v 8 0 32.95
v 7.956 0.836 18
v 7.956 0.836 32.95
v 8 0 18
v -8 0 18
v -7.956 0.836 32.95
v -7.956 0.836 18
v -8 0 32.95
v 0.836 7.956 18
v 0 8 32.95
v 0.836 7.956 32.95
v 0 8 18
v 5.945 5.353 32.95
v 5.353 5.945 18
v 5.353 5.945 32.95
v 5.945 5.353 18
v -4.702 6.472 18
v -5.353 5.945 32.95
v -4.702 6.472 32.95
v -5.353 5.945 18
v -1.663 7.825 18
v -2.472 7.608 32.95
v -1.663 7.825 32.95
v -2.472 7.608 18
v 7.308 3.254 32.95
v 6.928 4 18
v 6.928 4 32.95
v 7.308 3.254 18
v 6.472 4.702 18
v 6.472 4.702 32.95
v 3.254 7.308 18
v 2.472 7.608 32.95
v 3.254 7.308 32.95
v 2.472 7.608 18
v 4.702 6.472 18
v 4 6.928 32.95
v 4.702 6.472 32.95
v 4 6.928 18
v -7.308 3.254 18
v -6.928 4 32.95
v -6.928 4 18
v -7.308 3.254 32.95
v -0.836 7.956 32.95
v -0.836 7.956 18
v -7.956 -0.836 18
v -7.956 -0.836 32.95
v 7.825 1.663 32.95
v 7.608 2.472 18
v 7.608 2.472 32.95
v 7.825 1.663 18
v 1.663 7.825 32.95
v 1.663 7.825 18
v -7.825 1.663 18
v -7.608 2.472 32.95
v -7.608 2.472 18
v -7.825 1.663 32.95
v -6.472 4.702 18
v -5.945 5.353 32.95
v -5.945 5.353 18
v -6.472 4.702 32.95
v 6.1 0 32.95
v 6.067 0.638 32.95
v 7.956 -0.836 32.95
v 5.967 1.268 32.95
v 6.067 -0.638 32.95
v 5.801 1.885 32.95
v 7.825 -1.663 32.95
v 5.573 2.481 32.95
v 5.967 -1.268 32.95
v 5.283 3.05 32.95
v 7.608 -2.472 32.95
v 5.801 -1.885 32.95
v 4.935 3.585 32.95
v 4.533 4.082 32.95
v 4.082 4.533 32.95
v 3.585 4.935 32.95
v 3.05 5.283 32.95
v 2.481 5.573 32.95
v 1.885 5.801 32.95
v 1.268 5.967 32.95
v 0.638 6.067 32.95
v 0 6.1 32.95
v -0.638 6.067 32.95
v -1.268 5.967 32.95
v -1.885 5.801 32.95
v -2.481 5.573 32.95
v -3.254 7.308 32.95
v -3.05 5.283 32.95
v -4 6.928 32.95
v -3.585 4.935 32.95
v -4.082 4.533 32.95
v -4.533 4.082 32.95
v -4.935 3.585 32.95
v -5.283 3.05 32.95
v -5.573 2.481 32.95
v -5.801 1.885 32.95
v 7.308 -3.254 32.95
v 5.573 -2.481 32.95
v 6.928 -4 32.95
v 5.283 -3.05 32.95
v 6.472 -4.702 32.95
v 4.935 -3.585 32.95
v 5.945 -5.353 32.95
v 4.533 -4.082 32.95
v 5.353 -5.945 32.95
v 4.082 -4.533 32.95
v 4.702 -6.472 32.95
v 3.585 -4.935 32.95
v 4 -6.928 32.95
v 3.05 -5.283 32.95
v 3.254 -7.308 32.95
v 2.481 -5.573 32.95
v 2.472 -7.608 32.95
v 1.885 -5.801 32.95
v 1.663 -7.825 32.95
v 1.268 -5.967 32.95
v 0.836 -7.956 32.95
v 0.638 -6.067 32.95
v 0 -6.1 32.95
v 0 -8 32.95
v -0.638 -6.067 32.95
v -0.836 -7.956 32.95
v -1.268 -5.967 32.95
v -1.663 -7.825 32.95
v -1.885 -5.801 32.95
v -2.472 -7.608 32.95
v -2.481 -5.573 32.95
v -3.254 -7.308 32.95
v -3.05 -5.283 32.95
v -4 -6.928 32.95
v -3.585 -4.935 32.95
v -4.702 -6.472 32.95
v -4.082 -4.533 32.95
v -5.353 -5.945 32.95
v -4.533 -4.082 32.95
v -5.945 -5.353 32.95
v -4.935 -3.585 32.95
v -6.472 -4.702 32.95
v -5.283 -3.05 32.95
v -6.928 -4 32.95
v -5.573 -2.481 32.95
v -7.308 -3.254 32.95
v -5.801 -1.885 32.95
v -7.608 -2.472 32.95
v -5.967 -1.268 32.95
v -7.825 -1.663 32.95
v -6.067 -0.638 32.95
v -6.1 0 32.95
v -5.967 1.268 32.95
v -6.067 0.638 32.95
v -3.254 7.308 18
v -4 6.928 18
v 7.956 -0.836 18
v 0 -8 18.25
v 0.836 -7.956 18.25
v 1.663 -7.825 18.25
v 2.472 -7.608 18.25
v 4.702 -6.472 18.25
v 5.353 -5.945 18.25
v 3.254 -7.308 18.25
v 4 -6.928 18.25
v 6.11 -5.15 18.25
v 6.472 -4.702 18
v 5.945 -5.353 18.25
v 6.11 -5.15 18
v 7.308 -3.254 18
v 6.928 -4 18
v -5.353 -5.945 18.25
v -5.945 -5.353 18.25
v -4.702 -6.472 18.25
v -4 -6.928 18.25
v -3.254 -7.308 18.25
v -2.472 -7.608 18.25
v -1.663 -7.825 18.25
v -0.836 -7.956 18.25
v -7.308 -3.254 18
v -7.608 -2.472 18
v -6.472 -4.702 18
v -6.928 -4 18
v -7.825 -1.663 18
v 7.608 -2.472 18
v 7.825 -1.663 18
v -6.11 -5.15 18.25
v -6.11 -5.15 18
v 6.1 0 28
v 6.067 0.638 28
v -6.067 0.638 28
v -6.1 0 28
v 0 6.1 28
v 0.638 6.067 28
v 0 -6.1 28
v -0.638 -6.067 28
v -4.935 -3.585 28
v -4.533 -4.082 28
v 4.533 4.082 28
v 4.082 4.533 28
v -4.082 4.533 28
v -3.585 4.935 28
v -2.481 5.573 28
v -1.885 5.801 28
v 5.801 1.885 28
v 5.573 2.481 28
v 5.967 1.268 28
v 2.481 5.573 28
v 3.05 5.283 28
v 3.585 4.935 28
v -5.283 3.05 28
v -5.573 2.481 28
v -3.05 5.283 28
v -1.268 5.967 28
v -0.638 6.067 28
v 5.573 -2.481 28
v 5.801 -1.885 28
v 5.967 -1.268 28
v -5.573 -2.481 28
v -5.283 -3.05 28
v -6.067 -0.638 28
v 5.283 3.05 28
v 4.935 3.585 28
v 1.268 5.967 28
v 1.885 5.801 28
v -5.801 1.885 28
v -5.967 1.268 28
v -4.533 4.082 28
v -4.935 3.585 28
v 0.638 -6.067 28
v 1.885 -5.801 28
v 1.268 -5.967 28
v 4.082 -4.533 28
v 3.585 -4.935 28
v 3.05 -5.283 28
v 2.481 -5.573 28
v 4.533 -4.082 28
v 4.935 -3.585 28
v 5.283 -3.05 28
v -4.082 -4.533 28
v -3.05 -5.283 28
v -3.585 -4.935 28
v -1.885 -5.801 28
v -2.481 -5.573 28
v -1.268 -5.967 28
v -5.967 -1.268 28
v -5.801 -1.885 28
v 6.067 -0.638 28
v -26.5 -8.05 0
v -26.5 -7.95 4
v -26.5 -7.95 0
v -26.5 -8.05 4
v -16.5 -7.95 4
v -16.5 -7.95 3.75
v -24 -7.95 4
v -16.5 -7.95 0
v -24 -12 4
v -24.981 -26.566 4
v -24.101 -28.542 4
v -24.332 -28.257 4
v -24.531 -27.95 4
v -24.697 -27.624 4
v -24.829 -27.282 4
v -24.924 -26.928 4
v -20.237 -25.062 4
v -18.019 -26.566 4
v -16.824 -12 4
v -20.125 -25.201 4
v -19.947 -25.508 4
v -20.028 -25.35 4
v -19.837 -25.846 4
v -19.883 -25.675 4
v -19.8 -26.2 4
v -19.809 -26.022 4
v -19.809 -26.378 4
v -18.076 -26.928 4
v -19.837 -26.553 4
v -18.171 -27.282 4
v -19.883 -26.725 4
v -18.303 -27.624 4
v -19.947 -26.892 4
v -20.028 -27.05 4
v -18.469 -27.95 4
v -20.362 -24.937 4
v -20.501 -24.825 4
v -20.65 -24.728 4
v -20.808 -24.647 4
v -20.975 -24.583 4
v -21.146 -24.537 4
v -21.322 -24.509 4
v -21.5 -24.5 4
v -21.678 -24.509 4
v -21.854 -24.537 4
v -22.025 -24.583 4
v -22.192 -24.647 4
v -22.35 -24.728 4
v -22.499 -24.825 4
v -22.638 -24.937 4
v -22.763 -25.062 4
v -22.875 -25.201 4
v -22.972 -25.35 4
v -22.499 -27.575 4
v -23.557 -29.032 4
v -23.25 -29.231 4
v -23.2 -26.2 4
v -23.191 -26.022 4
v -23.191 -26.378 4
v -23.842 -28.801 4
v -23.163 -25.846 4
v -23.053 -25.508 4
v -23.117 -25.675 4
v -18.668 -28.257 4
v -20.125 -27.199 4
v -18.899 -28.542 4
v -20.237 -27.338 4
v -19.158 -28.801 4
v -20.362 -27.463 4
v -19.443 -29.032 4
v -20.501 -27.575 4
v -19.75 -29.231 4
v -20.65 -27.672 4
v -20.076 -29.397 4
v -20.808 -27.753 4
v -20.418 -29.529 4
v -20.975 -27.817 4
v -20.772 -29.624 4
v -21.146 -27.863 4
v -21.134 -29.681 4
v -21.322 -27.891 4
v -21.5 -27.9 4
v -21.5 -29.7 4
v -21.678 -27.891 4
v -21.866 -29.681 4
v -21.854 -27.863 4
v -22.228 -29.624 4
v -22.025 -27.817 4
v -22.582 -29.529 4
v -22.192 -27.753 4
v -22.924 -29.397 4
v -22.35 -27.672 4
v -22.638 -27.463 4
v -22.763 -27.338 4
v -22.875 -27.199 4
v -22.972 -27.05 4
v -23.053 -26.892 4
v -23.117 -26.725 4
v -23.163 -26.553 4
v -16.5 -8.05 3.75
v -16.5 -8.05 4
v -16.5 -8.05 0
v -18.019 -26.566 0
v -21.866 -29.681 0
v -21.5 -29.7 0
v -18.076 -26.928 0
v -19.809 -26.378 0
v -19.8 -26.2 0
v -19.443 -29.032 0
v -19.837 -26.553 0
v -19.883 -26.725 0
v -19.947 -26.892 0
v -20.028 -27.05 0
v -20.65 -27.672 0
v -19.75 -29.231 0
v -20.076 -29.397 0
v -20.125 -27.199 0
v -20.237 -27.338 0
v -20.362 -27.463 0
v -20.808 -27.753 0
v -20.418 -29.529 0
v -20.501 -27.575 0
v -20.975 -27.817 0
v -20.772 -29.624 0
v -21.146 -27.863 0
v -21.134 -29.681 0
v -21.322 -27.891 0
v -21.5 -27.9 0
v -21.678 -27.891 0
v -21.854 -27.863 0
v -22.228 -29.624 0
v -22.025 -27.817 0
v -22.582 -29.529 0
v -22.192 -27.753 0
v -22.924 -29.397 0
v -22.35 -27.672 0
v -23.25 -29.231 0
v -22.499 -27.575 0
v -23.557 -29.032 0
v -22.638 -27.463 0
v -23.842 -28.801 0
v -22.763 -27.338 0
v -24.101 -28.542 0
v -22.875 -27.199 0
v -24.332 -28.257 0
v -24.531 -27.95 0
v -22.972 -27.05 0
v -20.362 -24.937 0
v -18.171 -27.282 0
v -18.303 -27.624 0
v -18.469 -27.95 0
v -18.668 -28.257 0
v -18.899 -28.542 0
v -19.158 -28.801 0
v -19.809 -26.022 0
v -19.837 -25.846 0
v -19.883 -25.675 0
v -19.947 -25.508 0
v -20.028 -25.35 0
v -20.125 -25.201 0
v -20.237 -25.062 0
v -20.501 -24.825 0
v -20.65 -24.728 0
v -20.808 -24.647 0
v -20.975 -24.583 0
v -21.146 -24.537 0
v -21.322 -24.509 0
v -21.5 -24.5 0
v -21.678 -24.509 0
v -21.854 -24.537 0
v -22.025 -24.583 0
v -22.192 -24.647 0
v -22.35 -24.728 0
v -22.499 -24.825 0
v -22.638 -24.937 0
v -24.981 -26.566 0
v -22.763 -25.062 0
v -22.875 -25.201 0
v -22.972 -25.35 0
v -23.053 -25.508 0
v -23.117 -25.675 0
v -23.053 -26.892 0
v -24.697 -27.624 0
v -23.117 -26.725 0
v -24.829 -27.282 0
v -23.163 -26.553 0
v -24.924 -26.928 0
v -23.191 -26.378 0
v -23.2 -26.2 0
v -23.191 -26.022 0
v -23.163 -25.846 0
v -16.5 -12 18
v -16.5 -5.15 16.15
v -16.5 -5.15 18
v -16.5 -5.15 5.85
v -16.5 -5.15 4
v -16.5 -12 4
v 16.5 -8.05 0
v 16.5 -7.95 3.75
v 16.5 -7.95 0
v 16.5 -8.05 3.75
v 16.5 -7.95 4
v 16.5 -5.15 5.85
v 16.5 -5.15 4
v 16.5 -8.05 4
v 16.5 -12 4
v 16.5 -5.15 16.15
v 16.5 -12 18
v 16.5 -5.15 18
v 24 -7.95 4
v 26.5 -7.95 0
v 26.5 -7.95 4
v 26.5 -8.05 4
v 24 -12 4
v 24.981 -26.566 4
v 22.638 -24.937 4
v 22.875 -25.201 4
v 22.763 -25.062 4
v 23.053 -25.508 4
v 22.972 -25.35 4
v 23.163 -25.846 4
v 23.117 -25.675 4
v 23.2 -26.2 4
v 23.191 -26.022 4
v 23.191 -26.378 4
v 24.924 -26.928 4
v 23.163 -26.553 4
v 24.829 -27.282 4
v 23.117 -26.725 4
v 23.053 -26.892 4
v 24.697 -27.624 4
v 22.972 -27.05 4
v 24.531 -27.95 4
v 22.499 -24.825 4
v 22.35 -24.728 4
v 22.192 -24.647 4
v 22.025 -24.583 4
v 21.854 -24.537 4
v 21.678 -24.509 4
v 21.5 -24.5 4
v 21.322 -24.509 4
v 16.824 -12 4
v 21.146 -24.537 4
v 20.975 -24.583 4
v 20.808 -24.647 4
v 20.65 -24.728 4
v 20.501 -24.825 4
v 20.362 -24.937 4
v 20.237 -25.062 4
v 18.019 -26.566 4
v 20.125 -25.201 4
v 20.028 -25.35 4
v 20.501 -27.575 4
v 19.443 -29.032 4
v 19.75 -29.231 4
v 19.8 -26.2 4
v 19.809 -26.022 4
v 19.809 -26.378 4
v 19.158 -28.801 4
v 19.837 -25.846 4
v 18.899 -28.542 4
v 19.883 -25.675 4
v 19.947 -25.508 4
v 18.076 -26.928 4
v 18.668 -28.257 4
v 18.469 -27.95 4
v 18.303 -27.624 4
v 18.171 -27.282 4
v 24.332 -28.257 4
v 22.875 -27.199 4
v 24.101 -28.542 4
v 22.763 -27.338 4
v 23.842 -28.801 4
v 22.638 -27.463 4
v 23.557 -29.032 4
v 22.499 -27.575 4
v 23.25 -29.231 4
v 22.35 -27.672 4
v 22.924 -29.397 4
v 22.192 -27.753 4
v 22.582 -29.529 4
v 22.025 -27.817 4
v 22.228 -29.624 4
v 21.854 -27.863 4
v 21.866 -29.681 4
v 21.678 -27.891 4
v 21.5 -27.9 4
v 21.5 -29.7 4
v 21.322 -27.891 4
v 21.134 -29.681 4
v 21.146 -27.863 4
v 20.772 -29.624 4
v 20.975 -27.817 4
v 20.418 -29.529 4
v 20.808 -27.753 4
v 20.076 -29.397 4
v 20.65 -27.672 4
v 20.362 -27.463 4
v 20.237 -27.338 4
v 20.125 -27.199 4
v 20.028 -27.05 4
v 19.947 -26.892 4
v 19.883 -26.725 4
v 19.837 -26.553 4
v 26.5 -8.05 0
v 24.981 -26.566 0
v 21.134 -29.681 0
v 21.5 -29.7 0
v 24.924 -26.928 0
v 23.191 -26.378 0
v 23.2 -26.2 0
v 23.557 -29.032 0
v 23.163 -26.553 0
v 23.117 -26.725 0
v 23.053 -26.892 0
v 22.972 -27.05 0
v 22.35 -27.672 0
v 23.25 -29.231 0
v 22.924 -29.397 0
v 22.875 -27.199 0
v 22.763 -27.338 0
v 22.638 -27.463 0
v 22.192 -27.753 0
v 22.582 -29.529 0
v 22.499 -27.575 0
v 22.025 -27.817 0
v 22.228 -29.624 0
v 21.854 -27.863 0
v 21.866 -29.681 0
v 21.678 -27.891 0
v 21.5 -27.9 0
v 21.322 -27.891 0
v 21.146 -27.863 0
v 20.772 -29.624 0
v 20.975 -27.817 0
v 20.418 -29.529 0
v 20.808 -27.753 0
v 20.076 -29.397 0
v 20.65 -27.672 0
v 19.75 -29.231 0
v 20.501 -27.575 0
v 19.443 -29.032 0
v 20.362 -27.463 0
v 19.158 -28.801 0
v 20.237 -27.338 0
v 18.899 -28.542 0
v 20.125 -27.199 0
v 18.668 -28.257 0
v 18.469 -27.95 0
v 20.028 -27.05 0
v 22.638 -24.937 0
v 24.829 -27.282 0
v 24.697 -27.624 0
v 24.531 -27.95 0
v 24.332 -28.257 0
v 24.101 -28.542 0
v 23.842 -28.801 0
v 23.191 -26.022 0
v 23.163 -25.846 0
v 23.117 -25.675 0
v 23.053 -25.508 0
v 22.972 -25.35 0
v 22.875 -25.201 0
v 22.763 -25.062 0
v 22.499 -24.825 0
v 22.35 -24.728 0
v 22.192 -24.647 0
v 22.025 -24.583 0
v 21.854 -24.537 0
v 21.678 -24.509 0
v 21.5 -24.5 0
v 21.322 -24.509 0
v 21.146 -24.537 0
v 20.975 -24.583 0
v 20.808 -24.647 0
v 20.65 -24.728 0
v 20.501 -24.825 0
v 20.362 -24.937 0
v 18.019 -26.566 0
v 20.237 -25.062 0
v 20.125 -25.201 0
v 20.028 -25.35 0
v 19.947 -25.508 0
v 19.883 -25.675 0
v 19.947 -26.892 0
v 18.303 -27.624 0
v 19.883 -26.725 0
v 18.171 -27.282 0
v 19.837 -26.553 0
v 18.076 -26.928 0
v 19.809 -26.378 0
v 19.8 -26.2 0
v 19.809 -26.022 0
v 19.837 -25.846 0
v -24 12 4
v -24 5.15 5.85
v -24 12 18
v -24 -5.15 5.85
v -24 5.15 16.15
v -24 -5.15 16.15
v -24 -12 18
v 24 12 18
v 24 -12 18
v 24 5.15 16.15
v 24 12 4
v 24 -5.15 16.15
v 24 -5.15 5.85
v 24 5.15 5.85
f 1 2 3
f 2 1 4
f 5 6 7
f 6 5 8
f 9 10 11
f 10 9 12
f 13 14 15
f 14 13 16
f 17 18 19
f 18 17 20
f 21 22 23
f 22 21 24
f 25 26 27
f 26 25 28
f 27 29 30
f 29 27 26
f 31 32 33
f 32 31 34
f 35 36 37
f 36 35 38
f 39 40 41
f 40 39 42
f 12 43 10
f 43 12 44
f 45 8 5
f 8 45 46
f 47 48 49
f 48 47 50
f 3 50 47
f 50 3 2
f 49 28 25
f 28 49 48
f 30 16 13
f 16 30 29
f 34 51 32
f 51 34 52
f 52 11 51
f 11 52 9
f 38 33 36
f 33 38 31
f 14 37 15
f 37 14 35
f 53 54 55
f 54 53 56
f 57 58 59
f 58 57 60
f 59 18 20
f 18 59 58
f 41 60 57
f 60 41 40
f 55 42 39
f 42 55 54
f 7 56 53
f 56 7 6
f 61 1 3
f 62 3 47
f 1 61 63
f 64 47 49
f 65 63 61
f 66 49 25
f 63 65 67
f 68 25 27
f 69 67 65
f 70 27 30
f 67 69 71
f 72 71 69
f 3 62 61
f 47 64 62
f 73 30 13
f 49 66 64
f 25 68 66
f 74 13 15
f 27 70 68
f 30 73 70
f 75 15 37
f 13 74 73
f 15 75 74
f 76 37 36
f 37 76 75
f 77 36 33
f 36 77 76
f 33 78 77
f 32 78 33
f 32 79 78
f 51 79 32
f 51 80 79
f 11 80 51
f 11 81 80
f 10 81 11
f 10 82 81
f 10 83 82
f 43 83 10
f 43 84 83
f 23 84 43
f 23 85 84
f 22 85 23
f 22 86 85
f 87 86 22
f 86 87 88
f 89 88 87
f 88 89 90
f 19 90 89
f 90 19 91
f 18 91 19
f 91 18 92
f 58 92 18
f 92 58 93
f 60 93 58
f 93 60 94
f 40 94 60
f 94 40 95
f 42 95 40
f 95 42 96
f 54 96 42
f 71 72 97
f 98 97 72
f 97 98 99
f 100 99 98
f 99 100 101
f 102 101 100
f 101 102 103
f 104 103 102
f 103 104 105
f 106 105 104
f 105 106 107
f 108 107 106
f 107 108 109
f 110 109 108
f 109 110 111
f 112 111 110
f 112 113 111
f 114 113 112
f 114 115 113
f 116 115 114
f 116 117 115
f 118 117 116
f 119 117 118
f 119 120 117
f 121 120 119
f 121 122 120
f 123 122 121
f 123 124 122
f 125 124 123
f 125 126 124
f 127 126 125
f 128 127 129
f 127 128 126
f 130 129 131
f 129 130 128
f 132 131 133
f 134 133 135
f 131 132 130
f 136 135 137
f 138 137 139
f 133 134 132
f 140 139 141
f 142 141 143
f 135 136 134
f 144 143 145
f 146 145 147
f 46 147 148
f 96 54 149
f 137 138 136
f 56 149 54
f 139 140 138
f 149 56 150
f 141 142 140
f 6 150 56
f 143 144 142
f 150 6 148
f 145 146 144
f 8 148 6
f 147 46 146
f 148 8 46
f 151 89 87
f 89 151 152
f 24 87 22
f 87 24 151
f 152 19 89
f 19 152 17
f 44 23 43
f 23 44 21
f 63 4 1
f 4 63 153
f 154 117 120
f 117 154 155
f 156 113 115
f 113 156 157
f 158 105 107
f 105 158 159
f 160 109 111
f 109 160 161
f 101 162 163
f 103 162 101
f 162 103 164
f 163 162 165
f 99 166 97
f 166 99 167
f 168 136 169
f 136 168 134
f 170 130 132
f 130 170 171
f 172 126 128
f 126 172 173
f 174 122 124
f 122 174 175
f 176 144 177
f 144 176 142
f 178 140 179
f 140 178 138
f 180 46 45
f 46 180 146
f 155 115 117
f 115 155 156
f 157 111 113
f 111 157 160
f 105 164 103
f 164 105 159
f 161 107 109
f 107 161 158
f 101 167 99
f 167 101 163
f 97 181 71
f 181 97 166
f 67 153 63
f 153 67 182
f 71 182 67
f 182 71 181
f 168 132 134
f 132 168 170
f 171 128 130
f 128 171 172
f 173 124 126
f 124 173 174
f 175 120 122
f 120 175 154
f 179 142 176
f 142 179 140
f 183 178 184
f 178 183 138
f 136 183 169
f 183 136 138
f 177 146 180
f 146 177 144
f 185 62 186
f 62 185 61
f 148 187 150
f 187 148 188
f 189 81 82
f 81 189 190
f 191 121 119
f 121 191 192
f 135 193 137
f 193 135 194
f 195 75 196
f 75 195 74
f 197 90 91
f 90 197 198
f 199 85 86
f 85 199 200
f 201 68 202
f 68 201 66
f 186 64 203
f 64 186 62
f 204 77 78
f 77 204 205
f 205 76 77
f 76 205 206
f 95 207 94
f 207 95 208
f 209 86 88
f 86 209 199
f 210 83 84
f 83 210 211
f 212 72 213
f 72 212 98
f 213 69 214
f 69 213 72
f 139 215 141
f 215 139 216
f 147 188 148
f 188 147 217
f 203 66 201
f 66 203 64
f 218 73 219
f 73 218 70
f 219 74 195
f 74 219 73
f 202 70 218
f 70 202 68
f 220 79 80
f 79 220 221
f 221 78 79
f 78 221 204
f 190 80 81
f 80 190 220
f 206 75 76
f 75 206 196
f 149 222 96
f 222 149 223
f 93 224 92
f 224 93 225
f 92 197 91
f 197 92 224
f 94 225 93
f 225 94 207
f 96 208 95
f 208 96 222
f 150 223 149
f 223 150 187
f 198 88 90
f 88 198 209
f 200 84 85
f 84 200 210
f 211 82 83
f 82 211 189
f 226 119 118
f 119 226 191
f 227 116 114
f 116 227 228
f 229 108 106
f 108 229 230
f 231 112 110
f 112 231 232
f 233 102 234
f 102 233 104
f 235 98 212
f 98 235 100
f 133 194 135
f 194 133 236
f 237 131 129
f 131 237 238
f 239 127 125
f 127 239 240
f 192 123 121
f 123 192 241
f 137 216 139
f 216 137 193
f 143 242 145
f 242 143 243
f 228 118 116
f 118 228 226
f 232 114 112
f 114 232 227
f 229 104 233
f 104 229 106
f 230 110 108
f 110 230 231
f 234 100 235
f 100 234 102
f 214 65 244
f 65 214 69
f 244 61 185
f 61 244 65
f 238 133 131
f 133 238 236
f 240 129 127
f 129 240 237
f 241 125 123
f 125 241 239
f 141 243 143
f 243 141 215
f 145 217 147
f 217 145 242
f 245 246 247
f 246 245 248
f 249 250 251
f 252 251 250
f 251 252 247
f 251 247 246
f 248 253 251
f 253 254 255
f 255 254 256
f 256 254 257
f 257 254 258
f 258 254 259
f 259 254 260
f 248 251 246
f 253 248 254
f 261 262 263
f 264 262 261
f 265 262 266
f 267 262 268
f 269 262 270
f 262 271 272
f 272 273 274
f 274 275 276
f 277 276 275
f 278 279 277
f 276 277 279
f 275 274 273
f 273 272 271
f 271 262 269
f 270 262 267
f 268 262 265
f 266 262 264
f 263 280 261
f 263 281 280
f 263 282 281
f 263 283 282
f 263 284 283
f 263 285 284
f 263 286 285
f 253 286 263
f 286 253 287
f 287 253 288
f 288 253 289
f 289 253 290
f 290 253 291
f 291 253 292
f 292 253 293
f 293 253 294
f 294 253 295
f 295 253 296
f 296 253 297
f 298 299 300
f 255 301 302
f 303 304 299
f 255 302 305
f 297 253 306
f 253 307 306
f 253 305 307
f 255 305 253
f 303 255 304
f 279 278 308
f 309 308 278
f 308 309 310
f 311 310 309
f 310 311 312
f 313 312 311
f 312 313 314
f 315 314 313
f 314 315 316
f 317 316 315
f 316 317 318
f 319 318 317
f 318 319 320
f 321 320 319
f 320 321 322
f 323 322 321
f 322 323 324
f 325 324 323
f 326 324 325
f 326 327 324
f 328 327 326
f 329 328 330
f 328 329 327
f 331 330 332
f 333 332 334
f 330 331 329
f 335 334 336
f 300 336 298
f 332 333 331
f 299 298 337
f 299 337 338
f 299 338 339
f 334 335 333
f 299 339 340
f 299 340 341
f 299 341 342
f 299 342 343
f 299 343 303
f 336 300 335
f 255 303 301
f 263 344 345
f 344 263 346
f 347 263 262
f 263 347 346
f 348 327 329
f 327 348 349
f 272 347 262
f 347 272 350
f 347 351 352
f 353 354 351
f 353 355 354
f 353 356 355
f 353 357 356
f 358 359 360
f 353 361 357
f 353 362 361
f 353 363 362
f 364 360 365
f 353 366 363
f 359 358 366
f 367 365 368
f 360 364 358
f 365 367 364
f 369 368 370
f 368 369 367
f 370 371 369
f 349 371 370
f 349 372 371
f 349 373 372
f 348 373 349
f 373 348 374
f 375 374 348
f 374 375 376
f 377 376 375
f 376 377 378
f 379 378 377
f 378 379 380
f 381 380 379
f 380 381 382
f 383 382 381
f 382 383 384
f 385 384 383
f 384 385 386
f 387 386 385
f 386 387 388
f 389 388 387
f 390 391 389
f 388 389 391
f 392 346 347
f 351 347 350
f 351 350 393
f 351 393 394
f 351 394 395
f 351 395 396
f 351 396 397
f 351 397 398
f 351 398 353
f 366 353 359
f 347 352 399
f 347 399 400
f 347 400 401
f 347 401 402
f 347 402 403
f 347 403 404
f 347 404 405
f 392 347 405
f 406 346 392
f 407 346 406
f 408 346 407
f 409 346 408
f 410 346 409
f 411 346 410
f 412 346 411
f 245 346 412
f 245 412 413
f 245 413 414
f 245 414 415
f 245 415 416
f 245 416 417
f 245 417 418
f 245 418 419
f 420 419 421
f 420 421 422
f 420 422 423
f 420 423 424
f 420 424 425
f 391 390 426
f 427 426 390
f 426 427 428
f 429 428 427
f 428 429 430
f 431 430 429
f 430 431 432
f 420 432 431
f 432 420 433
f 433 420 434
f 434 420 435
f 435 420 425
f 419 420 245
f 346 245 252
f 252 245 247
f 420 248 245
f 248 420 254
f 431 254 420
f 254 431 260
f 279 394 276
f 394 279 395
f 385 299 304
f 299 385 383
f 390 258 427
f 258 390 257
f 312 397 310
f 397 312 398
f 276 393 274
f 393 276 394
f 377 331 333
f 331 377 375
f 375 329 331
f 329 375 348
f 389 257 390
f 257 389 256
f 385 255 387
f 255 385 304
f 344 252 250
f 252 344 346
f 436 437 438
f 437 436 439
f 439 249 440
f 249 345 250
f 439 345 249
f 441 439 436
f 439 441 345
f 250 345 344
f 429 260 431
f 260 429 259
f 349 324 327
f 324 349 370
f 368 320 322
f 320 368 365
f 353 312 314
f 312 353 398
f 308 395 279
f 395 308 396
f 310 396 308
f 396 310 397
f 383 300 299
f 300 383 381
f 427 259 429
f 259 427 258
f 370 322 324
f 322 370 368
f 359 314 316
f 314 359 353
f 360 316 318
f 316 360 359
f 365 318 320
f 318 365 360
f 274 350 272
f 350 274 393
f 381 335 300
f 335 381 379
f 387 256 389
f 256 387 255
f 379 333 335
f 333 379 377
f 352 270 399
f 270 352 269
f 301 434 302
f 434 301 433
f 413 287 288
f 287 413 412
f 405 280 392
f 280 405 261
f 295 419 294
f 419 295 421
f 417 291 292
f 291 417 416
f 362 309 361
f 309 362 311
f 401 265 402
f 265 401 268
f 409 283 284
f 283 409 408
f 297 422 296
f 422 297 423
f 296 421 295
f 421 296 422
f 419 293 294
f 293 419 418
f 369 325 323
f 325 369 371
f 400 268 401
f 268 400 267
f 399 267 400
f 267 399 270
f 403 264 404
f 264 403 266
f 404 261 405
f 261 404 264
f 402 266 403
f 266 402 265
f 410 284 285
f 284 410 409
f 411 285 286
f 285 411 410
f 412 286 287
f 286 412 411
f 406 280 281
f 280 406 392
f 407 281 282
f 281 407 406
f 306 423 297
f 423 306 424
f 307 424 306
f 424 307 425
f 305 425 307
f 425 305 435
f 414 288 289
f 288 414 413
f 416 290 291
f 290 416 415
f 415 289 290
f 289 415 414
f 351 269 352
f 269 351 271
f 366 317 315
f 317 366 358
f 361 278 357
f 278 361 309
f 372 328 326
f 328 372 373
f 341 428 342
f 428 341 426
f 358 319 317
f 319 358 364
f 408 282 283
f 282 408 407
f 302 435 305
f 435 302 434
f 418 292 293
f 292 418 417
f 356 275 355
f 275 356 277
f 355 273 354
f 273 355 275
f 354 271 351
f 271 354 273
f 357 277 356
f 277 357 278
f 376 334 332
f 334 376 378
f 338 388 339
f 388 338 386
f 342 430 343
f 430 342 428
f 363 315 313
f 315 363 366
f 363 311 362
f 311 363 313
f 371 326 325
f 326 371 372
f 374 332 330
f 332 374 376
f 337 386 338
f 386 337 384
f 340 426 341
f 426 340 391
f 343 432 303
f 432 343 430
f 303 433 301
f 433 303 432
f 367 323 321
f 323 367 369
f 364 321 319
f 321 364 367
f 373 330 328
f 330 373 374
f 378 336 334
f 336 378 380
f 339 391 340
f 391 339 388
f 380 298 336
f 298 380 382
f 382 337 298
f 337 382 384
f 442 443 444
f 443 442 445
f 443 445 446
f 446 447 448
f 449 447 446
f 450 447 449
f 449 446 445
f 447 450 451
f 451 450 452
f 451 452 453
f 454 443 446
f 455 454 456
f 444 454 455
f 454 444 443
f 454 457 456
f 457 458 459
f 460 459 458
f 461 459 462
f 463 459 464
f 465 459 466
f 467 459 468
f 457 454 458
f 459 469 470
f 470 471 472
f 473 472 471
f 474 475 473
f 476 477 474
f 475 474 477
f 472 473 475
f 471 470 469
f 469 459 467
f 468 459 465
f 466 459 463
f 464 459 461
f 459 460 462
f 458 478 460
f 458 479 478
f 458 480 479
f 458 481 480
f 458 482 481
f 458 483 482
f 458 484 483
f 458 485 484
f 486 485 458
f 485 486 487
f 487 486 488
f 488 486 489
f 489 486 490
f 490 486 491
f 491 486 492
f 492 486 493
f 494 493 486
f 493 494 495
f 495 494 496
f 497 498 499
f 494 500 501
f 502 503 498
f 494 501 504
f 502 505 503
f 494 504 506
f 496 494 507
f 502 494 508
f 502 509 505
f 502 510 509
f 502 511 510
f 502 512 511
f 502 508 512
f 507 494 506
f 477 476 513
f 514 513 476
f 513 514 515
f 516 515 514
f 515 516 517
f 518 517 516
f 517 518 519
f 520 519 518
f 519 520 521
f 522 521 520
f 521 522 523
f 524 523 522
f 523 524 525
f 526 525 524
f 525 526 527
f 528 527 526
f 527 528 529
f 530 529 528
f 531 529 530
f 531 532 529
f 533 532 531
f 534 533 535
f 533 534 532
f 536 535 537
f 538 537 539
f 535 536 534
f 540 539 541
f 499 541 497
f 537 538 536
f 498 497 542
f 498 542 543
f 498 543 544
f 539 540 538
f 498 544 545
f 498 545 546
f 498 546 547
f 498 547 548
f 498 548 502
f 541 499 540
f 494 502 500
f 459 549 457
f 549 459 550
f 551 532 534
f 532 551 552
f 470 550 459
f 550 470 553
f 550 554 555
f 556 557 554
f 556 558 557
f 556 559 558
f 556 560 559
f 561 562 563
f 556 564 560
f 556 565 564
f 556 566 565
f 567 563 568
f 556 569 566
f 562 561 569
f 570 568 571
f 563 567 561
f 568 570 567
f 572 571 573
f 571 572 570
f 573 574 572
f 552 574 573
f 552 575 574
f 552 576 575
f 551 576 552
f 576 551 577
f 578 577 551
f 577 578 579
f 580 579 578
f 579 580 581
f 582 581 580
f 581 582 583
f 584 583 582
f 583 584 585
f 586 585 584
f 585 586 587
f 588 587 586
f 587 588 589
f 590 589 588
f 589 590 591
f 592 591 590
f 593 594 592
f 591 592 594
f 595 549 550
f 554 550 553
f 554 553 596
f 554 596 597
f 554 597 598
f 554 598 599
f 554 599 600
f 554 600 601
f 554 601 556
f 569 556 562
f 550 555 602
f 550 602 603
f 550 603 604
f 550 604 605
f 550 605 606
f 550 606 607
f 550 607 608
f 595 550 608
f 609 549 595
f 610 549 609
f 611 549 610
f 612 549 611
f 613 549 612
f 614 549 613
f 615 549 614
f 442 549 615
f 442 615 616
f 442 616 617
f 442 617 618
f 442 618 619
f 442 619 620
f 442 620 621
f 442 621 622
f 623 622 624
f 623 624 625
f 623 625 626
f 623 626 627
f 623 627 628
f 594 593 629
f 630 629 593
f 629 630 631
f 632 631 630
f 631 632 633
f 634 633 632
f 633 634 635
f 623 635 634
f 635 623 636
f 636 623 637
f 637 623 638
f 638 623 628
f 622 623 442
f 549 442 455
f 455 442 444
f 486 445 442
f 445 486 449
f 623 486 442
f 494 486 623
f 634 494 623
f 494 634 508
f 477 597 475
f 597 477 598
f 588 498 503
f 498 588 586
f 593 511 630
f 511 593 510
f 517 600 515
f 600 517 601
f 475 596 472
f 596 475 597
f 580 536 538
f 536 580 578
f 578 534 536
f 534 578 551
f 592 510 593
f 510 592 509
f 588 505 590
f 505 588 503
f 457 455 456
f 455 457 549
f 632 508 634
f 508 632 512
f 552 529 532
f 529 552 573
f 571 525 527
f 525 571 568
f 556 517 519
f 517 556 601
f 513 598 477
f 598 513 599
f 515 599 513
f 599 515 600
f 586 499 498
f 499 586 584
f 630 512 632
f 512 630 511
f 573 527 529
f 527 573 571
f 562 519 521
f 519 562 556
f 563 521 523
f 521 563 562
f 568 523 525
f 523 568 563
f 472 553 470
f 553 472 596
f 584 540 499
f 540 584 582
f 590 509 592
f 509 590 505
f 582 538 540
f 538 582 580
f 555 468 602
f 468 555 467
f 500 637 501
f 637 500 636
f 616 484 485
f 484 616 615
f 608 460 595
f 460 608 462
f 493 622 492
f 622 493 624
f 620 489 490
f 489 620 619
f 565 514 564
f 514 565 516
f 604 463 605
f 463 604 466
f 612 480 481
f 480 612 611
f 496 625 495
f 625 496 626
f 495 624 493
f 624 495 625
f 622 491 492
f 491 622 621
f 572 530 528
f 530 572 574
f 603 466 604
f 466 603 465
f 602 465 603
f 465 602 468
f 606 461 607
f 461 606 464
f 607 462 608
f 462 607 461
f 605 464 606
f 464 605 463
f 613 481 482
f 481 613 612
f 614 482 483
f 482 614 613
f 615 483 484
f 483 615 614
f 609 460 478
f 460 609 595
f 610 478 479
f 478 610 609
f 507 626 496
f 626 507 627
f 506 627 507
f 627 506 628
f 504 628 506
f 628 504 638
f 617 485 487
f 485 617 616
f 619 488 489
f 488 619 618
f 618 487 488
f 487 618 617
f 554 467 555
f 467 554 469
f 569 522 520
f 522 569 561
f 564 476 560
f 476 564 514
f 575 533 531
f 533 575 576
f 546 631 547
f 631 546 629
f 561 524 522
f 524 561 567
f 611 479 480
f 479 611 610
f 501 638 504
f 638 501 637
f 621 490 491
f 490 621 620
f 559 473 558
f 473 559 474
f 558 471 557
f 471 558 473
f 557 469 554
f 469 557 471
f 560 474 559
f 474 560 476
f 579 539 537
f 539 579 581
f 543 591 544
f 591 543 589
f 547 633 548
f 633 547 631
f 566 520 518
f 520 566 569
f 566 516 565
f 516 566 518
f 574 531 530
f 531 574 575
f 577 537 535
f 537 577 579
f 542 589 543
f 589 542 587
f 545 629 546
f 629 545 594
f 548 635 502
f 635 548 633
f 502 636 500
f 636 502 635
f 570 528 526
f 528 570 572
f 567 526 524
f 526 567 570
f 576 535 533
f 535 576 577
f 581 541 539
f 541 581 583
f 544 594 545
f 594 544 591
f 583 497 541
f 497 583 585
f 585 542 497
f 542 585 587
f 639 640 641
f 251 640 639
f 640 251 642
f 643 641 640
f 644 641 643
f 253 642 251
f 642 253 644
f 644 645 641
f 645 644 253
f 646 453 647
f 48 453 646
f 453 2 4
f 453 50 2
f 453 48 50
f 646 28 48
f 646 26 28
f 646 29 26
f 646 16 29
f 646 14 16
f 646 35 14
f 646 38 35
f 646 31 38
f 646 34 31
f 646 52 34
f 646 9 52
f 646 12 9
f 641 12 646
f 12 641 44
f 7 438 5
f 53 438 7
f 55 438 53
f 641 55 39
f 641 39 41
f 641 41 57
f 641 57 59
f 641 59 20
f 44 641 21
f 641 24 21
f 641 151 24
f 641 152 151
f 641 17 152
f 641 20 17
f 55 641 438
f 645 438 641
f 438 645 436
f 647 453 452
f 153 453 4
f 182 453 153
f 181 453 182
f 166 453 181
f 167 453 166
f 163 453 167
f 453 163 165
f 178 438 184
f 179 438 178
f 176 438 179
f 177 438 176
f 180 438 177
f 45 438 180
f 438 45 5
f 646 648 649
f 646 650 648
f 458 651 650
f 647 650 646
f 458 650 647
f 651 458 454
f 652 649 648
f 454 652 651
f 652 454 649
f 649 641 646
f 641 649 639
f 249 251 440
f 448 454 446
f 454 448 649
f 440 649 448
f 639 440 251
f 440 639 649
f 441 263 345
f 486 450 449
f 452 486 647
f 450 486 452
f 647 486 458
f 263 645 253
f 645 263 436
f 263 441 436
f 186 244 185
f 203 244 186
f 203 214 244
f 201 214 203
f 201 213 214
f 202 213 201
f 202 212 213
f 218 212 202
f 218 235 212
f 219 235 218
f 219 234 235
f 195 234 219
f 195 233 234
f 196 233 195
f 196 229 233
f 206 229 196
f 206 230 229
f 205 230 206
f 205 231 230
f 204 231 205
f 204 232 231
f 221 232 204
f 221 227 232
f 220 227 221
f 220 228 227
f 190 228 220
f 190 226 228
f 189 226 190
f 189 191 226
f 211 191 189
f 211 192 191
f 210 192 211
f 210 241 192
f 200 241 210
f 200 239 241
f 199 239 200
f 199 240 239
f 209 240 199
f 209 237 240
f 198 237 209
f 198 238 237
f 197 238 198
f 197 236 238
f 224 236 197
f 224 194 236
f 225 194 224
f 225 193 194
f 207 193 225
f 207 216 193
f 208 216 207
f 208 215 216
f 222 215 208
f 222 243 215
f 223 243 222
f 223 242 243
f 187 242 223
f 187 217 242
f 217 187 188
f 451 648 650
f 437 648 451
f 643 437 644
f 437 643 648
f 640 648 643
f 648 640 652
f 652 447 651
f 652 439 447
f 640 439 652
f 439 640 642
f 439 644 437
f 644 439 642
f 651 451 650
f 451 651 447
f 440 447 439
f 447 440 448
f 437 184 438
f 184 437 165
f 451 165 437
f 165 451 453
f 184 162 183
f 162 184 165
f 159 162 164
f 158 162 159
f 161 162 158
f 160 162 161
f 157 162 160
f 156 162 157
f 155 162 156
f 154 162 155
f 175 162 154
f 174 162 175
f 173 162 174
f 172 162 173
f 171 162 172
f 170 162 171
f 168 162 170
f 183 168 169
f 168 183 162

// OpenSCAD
/* ==========================================================================
   PROJETO CAMPO TÁTIL - CARRINHO CENTRAL X (LARGURA 48mm COM TORRE DO ÍMÃ)
   Gera a peça individual do carrinho X vermelho de 48mm com torre do ímã
   Braços planos embutidos até Y=-8mm | Furos a Y=-26.2mm | Canal do Eixo 100% Fechado
   ========================================================================== */

$fn = 60;
furo_m3 = 3.4;

module carrinho_central_x() {
    // Translada a peça para assentar as abas inferiores de fixação na mesa (Z=0)
    translate([0, 0, -7.55]) {
        difference() {
            union() {
                // Bloco principal original (Z relativo = 11.55 a 25.55mm, Y = 24mm)
                translate([0, 0, 18.55])
                    cube([48, 24, 14], center=true);
                    
                // Torre de elevação do ímã (Z relativo = 25.55 a 35.55mm)
                translate([0, 0, 25.55 + 5.0])
                    cylinder(h = 10.0, r = 8.0, center=true);
                    
                // Borda redonda para o Ímã no topo (Z relativo = 35.55 a 40.55mm)
                translate([0, 0, 38.0]) {
                    difference() {
                        cylinder(h = 5.0, r = 8.0, center=true); 
                        cylinder(h = 6.0, r = 6.1, center=true); // Alojamento do ímã
                    }
                }
                
                // Suporte do Motor X Esquerdo Plano & Embutido (x = -21.5mm)
                // Furo recuado para Y = -26.2mm seguro. Embutido sob o bloco até Y = -8.0mm
                translate([-21.5, 0, 7.55 + 2.0]) {
                    difference() {
                        hull() {
                            translate([0, -8.0, 0])
                                cube([10, 0.1, 4.0], center=true);
                            translate([0, -26.2, 0])
                                cylinder(h = 4.0, r = 3.5, center=true);
                        }
                        translate([0, -26.2, 0])
                            cylinder(h = 5.0, r = furo_m3/2, center=true);
                    }
                }

                // Suporte do Motor X Direito Plano & Embutido (x = 21.5mm)
                translate([21.5, 0, 7.55 + 2.0]) {
                    difference() {
                        hull() {
                            translate([0, -8.0, 0])
                                cube([10, 0.1, 4.0], center=true);
                            translate([0, -26.2, 0])
                                cylinder(h = 4.0, r = 3.5, center=true);
                        }
                        translate([0, -26.2, 0])
                            cylinder(h = 5.0, r = furo_m3/2, center=true);
                    }
                }
            }
            
            // Canal de deslize 1 (Eixo Único - Y = 0mm) - 100% FECHADO E ÍNTEGRO
            translate([0, 0, 18.55])
                cube([50, 10.3, 10.3], center=true);
                
            // RECORTES DE SEGURANÇA E FOLGA PARA O MOTOR NEMA 17
            // Recorte frontal de 6.85mm de profundidade (Corta até Y = -5.15mm, face frontal do canal do eixo)
            translate([0, -12.0 + 3.425, 18.55])
                cube([33.0, 6.85, 14.5], center=true); 
        }
    }
}

// Renderiza a peça pronta para fatiar
carrinho_central_x();
